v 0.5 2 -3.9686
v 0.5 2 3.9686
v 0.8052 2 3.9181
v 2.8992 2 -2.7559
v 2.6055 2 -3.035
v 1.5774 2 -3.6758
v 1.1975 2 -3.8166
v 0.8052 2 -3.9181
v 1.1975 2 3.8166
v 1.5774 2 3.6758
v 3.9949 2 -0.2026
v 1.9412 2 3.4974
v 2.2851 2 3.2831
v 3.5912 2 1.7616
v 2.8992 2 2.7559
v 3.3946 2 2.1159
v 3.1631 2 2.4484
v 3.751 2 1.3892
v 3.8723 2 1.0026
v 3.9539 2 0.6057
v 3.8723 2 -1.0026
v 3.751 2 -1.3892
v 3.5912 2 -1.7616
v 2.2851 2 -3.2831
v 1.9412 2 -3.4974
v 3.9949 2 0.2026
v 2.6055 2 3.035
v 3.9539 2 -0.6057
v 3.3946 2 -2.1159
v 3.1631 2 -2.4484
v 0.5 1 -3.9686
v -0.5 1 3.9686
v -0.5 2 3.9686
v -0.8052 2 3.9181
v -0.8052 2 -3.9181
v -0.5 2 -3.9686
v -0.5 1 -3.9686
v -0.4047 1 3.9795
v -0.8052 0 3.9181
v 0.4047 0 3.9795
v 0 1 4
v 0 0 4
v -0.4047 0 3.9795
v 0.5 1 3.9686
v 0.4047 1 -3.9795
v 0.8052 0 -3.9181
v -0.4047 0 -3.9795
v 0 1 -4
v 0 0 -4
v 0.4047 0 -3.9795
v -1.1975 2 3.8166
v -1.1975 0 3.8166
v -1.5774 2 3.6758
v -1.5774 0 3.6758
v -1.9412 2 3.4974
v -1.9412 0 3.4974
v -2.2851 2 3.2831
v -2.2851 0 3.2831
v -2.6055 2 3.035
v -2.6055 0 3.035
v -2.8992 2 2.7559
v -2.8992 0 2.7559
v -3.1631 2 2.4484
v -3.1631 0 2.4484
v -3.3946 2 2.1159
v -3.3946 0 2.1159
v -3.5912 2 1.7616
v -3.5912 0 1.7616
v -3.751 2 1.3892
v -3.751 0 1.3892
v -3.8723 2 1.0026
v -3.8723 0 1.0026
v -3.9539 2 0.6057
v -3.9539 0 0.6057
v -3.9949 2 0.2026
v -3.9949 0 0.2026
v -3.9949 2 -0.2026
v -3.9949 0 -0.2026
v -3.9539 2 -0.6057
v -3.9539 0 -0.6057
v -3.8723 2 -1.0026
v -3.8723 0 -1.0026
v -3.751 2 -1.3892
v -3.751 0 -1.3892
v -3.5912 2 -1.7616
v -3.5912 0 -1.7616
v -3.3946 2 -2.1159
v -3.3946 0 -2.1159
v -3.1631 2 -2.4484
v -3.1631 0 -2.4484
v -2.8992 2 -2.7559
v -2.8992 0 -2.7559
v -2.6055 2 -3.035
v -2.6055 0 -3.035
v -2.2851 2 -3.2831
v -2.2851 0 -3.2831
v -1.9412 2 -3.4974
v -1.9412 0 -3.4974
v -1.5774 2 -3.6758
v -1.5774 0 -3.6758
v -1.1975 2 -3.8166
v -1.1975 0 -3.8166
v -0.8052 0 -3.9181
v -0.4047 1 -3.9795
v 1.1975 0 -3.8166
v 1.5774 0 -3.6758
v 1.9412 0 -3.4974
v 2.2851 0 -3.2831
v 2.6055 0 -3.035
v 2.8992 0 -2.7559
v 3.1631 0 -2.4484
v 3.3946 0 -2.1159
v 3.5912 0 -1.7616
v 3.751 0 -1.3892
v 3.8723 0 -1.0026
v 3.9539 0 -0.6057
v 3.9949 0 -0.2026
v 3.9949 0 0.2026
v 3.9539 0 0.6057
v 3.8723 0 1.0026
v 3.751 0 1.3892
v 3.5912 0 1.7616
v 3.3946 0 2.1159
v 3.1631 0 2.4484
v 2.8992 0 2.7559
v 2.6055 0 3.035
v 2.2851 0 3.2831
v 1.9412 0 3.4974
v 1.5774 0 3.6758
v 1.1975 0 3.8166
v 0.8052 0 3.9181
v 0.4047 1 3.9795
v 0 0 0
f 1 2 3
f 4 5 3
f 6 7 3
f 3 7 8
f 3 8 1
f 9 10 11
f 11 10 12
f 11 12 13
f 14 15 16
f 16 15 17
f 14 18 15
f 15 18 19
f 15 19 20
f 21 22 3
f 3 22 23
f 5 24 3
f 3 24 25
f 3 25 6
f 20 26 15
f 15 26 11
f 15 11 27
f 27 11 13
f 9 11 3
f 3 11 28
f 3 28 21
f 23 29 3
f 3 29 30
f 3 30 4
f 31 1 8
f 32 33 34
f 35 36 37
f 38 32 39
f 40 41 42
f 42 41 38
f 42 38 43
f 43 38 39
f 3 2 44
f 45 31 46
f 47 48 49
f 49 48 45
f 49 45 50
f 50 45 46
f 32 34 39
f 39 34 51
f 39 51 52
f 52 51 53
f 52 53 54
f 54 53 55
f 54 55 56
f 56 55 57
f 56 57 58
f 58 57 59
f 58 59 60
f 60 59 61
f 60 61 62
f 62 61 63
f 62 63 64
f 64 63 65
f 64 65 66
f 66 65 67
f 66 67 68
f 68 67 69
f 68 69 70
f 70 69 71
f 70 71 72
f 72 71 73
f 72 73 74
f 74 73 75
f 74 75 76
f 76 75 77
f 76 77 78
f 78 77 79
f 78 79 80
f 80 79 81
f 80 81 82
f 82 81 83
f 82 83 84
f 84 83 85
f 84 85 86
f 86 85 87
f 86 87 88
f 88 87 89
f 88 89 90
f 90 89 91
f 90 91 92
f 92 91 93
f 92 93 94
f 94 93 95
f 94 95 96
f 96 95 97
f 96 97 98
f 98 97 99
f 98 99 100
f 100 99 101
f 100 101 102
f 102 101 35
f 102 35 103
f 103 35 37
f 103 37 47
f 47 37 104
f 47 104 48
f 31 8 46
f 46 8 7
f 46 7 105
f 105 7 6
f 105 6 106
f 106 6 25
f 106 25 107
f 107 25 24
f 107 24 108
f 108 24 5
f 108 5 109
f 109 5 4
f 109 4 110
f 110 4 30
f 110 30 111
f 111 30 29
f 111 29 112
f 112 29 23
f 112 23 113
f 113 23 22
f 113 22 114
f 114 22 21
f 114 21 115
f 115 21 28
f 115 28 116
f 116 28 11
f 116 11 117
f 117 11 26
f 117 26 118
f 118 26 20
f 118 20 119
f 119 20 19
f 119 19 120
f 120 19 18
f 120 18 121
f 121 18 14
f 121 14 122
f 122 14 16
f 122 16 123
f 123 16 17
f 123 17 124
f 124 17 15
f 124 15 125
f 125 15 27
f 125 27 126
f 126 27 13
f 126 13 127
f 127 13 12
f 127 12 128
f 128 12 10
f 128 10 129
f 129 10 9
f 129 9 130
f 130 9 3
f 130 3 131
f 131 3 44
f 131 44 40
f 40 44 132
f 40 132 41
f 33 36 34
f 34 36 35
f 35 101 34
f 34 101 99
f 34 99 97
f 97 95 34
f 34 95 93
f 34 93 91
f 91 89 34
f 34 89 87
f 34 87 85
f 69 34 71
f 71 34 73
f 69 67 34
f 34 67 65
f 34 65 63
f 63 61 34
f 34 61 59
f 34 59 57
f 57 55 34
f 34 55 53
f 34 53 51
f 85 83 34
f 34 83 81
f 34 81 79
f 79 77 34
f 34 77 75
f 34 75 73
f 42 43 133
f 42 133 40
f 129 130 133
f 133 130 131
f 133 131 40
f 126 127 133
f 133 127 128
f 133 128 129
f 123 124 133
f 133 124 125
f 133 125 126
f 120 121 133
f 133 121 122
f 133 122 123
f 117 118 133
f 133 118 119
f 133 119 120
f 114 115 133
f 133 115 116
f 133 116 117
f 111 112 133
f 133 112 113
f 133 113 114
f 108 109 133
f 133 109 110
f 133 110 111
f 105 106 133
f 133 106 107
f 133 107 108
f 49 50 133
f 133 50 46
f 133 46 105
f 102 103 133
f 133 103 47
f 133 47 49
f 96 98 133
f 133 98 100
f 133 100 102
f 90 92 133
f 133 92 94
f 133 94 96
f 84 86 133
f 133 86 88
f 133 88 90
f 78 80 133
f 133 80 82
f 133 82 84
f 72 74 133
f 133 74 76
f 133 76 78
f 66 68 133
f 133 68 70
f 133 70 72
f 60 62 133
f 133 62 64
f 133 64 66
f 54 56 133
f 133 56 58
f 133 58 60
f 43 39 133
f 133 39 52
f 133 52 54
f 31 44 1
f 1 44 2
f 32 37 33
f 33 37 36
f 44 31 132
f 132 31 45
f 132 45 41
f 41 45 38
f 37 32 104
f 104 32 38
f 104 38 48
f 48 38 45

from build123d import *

# Parameters (mm, degrees)
CROQUIS1_R              = 4
SALIENTE_EXTRUIR1_DEPTH = 2
CORTAR_EXTRUIR1_START   = -1
CORTAR_EXTRUIR1_DEPTH   = 1


with BuildPart() as part:
    # Croquis1 → Saliente-Extruir1 (new body)
    with BuildSketch(Plane(origin=(0, 0, 0), x_dir=(1, 0, 0), z_dir=(0, 1, 0))):
        with Locations(Location((0, 0, 0), (0, 0, 270))):
            Circle(CROQUIS1_R)
    extrude(amount=SALIENTE_EXTRUIR1_DEPTH)

    # Croquis2 → Cortar-Extruir1 (cut)
    with BuildSketch(Plane(origin=(0, 2, 0), x_dir=(1, 0, 0), z_dir=(0, 1, 0)).offset(CORTAR_EXTRUIR1_START)):
        with BuildLine():
            Line((-0.5, 3.968626967), (-0.5, -3.968626967))
            ThreePointArc((-0.5, -3.968626967), (0, -4), (0.5, -3.968626967))
            Line((0.5, -3.968626967), (0.5, 3.968626967))
            ThreePointArc((0.5, 3.968626967), (0, 4), (-0.5, 3.968626967))
        make_face()
    extrude(amount=CORTAR_EXTRUIR1_DEPTH, mode=Mode.SUBTRACT)


solid = part.part
